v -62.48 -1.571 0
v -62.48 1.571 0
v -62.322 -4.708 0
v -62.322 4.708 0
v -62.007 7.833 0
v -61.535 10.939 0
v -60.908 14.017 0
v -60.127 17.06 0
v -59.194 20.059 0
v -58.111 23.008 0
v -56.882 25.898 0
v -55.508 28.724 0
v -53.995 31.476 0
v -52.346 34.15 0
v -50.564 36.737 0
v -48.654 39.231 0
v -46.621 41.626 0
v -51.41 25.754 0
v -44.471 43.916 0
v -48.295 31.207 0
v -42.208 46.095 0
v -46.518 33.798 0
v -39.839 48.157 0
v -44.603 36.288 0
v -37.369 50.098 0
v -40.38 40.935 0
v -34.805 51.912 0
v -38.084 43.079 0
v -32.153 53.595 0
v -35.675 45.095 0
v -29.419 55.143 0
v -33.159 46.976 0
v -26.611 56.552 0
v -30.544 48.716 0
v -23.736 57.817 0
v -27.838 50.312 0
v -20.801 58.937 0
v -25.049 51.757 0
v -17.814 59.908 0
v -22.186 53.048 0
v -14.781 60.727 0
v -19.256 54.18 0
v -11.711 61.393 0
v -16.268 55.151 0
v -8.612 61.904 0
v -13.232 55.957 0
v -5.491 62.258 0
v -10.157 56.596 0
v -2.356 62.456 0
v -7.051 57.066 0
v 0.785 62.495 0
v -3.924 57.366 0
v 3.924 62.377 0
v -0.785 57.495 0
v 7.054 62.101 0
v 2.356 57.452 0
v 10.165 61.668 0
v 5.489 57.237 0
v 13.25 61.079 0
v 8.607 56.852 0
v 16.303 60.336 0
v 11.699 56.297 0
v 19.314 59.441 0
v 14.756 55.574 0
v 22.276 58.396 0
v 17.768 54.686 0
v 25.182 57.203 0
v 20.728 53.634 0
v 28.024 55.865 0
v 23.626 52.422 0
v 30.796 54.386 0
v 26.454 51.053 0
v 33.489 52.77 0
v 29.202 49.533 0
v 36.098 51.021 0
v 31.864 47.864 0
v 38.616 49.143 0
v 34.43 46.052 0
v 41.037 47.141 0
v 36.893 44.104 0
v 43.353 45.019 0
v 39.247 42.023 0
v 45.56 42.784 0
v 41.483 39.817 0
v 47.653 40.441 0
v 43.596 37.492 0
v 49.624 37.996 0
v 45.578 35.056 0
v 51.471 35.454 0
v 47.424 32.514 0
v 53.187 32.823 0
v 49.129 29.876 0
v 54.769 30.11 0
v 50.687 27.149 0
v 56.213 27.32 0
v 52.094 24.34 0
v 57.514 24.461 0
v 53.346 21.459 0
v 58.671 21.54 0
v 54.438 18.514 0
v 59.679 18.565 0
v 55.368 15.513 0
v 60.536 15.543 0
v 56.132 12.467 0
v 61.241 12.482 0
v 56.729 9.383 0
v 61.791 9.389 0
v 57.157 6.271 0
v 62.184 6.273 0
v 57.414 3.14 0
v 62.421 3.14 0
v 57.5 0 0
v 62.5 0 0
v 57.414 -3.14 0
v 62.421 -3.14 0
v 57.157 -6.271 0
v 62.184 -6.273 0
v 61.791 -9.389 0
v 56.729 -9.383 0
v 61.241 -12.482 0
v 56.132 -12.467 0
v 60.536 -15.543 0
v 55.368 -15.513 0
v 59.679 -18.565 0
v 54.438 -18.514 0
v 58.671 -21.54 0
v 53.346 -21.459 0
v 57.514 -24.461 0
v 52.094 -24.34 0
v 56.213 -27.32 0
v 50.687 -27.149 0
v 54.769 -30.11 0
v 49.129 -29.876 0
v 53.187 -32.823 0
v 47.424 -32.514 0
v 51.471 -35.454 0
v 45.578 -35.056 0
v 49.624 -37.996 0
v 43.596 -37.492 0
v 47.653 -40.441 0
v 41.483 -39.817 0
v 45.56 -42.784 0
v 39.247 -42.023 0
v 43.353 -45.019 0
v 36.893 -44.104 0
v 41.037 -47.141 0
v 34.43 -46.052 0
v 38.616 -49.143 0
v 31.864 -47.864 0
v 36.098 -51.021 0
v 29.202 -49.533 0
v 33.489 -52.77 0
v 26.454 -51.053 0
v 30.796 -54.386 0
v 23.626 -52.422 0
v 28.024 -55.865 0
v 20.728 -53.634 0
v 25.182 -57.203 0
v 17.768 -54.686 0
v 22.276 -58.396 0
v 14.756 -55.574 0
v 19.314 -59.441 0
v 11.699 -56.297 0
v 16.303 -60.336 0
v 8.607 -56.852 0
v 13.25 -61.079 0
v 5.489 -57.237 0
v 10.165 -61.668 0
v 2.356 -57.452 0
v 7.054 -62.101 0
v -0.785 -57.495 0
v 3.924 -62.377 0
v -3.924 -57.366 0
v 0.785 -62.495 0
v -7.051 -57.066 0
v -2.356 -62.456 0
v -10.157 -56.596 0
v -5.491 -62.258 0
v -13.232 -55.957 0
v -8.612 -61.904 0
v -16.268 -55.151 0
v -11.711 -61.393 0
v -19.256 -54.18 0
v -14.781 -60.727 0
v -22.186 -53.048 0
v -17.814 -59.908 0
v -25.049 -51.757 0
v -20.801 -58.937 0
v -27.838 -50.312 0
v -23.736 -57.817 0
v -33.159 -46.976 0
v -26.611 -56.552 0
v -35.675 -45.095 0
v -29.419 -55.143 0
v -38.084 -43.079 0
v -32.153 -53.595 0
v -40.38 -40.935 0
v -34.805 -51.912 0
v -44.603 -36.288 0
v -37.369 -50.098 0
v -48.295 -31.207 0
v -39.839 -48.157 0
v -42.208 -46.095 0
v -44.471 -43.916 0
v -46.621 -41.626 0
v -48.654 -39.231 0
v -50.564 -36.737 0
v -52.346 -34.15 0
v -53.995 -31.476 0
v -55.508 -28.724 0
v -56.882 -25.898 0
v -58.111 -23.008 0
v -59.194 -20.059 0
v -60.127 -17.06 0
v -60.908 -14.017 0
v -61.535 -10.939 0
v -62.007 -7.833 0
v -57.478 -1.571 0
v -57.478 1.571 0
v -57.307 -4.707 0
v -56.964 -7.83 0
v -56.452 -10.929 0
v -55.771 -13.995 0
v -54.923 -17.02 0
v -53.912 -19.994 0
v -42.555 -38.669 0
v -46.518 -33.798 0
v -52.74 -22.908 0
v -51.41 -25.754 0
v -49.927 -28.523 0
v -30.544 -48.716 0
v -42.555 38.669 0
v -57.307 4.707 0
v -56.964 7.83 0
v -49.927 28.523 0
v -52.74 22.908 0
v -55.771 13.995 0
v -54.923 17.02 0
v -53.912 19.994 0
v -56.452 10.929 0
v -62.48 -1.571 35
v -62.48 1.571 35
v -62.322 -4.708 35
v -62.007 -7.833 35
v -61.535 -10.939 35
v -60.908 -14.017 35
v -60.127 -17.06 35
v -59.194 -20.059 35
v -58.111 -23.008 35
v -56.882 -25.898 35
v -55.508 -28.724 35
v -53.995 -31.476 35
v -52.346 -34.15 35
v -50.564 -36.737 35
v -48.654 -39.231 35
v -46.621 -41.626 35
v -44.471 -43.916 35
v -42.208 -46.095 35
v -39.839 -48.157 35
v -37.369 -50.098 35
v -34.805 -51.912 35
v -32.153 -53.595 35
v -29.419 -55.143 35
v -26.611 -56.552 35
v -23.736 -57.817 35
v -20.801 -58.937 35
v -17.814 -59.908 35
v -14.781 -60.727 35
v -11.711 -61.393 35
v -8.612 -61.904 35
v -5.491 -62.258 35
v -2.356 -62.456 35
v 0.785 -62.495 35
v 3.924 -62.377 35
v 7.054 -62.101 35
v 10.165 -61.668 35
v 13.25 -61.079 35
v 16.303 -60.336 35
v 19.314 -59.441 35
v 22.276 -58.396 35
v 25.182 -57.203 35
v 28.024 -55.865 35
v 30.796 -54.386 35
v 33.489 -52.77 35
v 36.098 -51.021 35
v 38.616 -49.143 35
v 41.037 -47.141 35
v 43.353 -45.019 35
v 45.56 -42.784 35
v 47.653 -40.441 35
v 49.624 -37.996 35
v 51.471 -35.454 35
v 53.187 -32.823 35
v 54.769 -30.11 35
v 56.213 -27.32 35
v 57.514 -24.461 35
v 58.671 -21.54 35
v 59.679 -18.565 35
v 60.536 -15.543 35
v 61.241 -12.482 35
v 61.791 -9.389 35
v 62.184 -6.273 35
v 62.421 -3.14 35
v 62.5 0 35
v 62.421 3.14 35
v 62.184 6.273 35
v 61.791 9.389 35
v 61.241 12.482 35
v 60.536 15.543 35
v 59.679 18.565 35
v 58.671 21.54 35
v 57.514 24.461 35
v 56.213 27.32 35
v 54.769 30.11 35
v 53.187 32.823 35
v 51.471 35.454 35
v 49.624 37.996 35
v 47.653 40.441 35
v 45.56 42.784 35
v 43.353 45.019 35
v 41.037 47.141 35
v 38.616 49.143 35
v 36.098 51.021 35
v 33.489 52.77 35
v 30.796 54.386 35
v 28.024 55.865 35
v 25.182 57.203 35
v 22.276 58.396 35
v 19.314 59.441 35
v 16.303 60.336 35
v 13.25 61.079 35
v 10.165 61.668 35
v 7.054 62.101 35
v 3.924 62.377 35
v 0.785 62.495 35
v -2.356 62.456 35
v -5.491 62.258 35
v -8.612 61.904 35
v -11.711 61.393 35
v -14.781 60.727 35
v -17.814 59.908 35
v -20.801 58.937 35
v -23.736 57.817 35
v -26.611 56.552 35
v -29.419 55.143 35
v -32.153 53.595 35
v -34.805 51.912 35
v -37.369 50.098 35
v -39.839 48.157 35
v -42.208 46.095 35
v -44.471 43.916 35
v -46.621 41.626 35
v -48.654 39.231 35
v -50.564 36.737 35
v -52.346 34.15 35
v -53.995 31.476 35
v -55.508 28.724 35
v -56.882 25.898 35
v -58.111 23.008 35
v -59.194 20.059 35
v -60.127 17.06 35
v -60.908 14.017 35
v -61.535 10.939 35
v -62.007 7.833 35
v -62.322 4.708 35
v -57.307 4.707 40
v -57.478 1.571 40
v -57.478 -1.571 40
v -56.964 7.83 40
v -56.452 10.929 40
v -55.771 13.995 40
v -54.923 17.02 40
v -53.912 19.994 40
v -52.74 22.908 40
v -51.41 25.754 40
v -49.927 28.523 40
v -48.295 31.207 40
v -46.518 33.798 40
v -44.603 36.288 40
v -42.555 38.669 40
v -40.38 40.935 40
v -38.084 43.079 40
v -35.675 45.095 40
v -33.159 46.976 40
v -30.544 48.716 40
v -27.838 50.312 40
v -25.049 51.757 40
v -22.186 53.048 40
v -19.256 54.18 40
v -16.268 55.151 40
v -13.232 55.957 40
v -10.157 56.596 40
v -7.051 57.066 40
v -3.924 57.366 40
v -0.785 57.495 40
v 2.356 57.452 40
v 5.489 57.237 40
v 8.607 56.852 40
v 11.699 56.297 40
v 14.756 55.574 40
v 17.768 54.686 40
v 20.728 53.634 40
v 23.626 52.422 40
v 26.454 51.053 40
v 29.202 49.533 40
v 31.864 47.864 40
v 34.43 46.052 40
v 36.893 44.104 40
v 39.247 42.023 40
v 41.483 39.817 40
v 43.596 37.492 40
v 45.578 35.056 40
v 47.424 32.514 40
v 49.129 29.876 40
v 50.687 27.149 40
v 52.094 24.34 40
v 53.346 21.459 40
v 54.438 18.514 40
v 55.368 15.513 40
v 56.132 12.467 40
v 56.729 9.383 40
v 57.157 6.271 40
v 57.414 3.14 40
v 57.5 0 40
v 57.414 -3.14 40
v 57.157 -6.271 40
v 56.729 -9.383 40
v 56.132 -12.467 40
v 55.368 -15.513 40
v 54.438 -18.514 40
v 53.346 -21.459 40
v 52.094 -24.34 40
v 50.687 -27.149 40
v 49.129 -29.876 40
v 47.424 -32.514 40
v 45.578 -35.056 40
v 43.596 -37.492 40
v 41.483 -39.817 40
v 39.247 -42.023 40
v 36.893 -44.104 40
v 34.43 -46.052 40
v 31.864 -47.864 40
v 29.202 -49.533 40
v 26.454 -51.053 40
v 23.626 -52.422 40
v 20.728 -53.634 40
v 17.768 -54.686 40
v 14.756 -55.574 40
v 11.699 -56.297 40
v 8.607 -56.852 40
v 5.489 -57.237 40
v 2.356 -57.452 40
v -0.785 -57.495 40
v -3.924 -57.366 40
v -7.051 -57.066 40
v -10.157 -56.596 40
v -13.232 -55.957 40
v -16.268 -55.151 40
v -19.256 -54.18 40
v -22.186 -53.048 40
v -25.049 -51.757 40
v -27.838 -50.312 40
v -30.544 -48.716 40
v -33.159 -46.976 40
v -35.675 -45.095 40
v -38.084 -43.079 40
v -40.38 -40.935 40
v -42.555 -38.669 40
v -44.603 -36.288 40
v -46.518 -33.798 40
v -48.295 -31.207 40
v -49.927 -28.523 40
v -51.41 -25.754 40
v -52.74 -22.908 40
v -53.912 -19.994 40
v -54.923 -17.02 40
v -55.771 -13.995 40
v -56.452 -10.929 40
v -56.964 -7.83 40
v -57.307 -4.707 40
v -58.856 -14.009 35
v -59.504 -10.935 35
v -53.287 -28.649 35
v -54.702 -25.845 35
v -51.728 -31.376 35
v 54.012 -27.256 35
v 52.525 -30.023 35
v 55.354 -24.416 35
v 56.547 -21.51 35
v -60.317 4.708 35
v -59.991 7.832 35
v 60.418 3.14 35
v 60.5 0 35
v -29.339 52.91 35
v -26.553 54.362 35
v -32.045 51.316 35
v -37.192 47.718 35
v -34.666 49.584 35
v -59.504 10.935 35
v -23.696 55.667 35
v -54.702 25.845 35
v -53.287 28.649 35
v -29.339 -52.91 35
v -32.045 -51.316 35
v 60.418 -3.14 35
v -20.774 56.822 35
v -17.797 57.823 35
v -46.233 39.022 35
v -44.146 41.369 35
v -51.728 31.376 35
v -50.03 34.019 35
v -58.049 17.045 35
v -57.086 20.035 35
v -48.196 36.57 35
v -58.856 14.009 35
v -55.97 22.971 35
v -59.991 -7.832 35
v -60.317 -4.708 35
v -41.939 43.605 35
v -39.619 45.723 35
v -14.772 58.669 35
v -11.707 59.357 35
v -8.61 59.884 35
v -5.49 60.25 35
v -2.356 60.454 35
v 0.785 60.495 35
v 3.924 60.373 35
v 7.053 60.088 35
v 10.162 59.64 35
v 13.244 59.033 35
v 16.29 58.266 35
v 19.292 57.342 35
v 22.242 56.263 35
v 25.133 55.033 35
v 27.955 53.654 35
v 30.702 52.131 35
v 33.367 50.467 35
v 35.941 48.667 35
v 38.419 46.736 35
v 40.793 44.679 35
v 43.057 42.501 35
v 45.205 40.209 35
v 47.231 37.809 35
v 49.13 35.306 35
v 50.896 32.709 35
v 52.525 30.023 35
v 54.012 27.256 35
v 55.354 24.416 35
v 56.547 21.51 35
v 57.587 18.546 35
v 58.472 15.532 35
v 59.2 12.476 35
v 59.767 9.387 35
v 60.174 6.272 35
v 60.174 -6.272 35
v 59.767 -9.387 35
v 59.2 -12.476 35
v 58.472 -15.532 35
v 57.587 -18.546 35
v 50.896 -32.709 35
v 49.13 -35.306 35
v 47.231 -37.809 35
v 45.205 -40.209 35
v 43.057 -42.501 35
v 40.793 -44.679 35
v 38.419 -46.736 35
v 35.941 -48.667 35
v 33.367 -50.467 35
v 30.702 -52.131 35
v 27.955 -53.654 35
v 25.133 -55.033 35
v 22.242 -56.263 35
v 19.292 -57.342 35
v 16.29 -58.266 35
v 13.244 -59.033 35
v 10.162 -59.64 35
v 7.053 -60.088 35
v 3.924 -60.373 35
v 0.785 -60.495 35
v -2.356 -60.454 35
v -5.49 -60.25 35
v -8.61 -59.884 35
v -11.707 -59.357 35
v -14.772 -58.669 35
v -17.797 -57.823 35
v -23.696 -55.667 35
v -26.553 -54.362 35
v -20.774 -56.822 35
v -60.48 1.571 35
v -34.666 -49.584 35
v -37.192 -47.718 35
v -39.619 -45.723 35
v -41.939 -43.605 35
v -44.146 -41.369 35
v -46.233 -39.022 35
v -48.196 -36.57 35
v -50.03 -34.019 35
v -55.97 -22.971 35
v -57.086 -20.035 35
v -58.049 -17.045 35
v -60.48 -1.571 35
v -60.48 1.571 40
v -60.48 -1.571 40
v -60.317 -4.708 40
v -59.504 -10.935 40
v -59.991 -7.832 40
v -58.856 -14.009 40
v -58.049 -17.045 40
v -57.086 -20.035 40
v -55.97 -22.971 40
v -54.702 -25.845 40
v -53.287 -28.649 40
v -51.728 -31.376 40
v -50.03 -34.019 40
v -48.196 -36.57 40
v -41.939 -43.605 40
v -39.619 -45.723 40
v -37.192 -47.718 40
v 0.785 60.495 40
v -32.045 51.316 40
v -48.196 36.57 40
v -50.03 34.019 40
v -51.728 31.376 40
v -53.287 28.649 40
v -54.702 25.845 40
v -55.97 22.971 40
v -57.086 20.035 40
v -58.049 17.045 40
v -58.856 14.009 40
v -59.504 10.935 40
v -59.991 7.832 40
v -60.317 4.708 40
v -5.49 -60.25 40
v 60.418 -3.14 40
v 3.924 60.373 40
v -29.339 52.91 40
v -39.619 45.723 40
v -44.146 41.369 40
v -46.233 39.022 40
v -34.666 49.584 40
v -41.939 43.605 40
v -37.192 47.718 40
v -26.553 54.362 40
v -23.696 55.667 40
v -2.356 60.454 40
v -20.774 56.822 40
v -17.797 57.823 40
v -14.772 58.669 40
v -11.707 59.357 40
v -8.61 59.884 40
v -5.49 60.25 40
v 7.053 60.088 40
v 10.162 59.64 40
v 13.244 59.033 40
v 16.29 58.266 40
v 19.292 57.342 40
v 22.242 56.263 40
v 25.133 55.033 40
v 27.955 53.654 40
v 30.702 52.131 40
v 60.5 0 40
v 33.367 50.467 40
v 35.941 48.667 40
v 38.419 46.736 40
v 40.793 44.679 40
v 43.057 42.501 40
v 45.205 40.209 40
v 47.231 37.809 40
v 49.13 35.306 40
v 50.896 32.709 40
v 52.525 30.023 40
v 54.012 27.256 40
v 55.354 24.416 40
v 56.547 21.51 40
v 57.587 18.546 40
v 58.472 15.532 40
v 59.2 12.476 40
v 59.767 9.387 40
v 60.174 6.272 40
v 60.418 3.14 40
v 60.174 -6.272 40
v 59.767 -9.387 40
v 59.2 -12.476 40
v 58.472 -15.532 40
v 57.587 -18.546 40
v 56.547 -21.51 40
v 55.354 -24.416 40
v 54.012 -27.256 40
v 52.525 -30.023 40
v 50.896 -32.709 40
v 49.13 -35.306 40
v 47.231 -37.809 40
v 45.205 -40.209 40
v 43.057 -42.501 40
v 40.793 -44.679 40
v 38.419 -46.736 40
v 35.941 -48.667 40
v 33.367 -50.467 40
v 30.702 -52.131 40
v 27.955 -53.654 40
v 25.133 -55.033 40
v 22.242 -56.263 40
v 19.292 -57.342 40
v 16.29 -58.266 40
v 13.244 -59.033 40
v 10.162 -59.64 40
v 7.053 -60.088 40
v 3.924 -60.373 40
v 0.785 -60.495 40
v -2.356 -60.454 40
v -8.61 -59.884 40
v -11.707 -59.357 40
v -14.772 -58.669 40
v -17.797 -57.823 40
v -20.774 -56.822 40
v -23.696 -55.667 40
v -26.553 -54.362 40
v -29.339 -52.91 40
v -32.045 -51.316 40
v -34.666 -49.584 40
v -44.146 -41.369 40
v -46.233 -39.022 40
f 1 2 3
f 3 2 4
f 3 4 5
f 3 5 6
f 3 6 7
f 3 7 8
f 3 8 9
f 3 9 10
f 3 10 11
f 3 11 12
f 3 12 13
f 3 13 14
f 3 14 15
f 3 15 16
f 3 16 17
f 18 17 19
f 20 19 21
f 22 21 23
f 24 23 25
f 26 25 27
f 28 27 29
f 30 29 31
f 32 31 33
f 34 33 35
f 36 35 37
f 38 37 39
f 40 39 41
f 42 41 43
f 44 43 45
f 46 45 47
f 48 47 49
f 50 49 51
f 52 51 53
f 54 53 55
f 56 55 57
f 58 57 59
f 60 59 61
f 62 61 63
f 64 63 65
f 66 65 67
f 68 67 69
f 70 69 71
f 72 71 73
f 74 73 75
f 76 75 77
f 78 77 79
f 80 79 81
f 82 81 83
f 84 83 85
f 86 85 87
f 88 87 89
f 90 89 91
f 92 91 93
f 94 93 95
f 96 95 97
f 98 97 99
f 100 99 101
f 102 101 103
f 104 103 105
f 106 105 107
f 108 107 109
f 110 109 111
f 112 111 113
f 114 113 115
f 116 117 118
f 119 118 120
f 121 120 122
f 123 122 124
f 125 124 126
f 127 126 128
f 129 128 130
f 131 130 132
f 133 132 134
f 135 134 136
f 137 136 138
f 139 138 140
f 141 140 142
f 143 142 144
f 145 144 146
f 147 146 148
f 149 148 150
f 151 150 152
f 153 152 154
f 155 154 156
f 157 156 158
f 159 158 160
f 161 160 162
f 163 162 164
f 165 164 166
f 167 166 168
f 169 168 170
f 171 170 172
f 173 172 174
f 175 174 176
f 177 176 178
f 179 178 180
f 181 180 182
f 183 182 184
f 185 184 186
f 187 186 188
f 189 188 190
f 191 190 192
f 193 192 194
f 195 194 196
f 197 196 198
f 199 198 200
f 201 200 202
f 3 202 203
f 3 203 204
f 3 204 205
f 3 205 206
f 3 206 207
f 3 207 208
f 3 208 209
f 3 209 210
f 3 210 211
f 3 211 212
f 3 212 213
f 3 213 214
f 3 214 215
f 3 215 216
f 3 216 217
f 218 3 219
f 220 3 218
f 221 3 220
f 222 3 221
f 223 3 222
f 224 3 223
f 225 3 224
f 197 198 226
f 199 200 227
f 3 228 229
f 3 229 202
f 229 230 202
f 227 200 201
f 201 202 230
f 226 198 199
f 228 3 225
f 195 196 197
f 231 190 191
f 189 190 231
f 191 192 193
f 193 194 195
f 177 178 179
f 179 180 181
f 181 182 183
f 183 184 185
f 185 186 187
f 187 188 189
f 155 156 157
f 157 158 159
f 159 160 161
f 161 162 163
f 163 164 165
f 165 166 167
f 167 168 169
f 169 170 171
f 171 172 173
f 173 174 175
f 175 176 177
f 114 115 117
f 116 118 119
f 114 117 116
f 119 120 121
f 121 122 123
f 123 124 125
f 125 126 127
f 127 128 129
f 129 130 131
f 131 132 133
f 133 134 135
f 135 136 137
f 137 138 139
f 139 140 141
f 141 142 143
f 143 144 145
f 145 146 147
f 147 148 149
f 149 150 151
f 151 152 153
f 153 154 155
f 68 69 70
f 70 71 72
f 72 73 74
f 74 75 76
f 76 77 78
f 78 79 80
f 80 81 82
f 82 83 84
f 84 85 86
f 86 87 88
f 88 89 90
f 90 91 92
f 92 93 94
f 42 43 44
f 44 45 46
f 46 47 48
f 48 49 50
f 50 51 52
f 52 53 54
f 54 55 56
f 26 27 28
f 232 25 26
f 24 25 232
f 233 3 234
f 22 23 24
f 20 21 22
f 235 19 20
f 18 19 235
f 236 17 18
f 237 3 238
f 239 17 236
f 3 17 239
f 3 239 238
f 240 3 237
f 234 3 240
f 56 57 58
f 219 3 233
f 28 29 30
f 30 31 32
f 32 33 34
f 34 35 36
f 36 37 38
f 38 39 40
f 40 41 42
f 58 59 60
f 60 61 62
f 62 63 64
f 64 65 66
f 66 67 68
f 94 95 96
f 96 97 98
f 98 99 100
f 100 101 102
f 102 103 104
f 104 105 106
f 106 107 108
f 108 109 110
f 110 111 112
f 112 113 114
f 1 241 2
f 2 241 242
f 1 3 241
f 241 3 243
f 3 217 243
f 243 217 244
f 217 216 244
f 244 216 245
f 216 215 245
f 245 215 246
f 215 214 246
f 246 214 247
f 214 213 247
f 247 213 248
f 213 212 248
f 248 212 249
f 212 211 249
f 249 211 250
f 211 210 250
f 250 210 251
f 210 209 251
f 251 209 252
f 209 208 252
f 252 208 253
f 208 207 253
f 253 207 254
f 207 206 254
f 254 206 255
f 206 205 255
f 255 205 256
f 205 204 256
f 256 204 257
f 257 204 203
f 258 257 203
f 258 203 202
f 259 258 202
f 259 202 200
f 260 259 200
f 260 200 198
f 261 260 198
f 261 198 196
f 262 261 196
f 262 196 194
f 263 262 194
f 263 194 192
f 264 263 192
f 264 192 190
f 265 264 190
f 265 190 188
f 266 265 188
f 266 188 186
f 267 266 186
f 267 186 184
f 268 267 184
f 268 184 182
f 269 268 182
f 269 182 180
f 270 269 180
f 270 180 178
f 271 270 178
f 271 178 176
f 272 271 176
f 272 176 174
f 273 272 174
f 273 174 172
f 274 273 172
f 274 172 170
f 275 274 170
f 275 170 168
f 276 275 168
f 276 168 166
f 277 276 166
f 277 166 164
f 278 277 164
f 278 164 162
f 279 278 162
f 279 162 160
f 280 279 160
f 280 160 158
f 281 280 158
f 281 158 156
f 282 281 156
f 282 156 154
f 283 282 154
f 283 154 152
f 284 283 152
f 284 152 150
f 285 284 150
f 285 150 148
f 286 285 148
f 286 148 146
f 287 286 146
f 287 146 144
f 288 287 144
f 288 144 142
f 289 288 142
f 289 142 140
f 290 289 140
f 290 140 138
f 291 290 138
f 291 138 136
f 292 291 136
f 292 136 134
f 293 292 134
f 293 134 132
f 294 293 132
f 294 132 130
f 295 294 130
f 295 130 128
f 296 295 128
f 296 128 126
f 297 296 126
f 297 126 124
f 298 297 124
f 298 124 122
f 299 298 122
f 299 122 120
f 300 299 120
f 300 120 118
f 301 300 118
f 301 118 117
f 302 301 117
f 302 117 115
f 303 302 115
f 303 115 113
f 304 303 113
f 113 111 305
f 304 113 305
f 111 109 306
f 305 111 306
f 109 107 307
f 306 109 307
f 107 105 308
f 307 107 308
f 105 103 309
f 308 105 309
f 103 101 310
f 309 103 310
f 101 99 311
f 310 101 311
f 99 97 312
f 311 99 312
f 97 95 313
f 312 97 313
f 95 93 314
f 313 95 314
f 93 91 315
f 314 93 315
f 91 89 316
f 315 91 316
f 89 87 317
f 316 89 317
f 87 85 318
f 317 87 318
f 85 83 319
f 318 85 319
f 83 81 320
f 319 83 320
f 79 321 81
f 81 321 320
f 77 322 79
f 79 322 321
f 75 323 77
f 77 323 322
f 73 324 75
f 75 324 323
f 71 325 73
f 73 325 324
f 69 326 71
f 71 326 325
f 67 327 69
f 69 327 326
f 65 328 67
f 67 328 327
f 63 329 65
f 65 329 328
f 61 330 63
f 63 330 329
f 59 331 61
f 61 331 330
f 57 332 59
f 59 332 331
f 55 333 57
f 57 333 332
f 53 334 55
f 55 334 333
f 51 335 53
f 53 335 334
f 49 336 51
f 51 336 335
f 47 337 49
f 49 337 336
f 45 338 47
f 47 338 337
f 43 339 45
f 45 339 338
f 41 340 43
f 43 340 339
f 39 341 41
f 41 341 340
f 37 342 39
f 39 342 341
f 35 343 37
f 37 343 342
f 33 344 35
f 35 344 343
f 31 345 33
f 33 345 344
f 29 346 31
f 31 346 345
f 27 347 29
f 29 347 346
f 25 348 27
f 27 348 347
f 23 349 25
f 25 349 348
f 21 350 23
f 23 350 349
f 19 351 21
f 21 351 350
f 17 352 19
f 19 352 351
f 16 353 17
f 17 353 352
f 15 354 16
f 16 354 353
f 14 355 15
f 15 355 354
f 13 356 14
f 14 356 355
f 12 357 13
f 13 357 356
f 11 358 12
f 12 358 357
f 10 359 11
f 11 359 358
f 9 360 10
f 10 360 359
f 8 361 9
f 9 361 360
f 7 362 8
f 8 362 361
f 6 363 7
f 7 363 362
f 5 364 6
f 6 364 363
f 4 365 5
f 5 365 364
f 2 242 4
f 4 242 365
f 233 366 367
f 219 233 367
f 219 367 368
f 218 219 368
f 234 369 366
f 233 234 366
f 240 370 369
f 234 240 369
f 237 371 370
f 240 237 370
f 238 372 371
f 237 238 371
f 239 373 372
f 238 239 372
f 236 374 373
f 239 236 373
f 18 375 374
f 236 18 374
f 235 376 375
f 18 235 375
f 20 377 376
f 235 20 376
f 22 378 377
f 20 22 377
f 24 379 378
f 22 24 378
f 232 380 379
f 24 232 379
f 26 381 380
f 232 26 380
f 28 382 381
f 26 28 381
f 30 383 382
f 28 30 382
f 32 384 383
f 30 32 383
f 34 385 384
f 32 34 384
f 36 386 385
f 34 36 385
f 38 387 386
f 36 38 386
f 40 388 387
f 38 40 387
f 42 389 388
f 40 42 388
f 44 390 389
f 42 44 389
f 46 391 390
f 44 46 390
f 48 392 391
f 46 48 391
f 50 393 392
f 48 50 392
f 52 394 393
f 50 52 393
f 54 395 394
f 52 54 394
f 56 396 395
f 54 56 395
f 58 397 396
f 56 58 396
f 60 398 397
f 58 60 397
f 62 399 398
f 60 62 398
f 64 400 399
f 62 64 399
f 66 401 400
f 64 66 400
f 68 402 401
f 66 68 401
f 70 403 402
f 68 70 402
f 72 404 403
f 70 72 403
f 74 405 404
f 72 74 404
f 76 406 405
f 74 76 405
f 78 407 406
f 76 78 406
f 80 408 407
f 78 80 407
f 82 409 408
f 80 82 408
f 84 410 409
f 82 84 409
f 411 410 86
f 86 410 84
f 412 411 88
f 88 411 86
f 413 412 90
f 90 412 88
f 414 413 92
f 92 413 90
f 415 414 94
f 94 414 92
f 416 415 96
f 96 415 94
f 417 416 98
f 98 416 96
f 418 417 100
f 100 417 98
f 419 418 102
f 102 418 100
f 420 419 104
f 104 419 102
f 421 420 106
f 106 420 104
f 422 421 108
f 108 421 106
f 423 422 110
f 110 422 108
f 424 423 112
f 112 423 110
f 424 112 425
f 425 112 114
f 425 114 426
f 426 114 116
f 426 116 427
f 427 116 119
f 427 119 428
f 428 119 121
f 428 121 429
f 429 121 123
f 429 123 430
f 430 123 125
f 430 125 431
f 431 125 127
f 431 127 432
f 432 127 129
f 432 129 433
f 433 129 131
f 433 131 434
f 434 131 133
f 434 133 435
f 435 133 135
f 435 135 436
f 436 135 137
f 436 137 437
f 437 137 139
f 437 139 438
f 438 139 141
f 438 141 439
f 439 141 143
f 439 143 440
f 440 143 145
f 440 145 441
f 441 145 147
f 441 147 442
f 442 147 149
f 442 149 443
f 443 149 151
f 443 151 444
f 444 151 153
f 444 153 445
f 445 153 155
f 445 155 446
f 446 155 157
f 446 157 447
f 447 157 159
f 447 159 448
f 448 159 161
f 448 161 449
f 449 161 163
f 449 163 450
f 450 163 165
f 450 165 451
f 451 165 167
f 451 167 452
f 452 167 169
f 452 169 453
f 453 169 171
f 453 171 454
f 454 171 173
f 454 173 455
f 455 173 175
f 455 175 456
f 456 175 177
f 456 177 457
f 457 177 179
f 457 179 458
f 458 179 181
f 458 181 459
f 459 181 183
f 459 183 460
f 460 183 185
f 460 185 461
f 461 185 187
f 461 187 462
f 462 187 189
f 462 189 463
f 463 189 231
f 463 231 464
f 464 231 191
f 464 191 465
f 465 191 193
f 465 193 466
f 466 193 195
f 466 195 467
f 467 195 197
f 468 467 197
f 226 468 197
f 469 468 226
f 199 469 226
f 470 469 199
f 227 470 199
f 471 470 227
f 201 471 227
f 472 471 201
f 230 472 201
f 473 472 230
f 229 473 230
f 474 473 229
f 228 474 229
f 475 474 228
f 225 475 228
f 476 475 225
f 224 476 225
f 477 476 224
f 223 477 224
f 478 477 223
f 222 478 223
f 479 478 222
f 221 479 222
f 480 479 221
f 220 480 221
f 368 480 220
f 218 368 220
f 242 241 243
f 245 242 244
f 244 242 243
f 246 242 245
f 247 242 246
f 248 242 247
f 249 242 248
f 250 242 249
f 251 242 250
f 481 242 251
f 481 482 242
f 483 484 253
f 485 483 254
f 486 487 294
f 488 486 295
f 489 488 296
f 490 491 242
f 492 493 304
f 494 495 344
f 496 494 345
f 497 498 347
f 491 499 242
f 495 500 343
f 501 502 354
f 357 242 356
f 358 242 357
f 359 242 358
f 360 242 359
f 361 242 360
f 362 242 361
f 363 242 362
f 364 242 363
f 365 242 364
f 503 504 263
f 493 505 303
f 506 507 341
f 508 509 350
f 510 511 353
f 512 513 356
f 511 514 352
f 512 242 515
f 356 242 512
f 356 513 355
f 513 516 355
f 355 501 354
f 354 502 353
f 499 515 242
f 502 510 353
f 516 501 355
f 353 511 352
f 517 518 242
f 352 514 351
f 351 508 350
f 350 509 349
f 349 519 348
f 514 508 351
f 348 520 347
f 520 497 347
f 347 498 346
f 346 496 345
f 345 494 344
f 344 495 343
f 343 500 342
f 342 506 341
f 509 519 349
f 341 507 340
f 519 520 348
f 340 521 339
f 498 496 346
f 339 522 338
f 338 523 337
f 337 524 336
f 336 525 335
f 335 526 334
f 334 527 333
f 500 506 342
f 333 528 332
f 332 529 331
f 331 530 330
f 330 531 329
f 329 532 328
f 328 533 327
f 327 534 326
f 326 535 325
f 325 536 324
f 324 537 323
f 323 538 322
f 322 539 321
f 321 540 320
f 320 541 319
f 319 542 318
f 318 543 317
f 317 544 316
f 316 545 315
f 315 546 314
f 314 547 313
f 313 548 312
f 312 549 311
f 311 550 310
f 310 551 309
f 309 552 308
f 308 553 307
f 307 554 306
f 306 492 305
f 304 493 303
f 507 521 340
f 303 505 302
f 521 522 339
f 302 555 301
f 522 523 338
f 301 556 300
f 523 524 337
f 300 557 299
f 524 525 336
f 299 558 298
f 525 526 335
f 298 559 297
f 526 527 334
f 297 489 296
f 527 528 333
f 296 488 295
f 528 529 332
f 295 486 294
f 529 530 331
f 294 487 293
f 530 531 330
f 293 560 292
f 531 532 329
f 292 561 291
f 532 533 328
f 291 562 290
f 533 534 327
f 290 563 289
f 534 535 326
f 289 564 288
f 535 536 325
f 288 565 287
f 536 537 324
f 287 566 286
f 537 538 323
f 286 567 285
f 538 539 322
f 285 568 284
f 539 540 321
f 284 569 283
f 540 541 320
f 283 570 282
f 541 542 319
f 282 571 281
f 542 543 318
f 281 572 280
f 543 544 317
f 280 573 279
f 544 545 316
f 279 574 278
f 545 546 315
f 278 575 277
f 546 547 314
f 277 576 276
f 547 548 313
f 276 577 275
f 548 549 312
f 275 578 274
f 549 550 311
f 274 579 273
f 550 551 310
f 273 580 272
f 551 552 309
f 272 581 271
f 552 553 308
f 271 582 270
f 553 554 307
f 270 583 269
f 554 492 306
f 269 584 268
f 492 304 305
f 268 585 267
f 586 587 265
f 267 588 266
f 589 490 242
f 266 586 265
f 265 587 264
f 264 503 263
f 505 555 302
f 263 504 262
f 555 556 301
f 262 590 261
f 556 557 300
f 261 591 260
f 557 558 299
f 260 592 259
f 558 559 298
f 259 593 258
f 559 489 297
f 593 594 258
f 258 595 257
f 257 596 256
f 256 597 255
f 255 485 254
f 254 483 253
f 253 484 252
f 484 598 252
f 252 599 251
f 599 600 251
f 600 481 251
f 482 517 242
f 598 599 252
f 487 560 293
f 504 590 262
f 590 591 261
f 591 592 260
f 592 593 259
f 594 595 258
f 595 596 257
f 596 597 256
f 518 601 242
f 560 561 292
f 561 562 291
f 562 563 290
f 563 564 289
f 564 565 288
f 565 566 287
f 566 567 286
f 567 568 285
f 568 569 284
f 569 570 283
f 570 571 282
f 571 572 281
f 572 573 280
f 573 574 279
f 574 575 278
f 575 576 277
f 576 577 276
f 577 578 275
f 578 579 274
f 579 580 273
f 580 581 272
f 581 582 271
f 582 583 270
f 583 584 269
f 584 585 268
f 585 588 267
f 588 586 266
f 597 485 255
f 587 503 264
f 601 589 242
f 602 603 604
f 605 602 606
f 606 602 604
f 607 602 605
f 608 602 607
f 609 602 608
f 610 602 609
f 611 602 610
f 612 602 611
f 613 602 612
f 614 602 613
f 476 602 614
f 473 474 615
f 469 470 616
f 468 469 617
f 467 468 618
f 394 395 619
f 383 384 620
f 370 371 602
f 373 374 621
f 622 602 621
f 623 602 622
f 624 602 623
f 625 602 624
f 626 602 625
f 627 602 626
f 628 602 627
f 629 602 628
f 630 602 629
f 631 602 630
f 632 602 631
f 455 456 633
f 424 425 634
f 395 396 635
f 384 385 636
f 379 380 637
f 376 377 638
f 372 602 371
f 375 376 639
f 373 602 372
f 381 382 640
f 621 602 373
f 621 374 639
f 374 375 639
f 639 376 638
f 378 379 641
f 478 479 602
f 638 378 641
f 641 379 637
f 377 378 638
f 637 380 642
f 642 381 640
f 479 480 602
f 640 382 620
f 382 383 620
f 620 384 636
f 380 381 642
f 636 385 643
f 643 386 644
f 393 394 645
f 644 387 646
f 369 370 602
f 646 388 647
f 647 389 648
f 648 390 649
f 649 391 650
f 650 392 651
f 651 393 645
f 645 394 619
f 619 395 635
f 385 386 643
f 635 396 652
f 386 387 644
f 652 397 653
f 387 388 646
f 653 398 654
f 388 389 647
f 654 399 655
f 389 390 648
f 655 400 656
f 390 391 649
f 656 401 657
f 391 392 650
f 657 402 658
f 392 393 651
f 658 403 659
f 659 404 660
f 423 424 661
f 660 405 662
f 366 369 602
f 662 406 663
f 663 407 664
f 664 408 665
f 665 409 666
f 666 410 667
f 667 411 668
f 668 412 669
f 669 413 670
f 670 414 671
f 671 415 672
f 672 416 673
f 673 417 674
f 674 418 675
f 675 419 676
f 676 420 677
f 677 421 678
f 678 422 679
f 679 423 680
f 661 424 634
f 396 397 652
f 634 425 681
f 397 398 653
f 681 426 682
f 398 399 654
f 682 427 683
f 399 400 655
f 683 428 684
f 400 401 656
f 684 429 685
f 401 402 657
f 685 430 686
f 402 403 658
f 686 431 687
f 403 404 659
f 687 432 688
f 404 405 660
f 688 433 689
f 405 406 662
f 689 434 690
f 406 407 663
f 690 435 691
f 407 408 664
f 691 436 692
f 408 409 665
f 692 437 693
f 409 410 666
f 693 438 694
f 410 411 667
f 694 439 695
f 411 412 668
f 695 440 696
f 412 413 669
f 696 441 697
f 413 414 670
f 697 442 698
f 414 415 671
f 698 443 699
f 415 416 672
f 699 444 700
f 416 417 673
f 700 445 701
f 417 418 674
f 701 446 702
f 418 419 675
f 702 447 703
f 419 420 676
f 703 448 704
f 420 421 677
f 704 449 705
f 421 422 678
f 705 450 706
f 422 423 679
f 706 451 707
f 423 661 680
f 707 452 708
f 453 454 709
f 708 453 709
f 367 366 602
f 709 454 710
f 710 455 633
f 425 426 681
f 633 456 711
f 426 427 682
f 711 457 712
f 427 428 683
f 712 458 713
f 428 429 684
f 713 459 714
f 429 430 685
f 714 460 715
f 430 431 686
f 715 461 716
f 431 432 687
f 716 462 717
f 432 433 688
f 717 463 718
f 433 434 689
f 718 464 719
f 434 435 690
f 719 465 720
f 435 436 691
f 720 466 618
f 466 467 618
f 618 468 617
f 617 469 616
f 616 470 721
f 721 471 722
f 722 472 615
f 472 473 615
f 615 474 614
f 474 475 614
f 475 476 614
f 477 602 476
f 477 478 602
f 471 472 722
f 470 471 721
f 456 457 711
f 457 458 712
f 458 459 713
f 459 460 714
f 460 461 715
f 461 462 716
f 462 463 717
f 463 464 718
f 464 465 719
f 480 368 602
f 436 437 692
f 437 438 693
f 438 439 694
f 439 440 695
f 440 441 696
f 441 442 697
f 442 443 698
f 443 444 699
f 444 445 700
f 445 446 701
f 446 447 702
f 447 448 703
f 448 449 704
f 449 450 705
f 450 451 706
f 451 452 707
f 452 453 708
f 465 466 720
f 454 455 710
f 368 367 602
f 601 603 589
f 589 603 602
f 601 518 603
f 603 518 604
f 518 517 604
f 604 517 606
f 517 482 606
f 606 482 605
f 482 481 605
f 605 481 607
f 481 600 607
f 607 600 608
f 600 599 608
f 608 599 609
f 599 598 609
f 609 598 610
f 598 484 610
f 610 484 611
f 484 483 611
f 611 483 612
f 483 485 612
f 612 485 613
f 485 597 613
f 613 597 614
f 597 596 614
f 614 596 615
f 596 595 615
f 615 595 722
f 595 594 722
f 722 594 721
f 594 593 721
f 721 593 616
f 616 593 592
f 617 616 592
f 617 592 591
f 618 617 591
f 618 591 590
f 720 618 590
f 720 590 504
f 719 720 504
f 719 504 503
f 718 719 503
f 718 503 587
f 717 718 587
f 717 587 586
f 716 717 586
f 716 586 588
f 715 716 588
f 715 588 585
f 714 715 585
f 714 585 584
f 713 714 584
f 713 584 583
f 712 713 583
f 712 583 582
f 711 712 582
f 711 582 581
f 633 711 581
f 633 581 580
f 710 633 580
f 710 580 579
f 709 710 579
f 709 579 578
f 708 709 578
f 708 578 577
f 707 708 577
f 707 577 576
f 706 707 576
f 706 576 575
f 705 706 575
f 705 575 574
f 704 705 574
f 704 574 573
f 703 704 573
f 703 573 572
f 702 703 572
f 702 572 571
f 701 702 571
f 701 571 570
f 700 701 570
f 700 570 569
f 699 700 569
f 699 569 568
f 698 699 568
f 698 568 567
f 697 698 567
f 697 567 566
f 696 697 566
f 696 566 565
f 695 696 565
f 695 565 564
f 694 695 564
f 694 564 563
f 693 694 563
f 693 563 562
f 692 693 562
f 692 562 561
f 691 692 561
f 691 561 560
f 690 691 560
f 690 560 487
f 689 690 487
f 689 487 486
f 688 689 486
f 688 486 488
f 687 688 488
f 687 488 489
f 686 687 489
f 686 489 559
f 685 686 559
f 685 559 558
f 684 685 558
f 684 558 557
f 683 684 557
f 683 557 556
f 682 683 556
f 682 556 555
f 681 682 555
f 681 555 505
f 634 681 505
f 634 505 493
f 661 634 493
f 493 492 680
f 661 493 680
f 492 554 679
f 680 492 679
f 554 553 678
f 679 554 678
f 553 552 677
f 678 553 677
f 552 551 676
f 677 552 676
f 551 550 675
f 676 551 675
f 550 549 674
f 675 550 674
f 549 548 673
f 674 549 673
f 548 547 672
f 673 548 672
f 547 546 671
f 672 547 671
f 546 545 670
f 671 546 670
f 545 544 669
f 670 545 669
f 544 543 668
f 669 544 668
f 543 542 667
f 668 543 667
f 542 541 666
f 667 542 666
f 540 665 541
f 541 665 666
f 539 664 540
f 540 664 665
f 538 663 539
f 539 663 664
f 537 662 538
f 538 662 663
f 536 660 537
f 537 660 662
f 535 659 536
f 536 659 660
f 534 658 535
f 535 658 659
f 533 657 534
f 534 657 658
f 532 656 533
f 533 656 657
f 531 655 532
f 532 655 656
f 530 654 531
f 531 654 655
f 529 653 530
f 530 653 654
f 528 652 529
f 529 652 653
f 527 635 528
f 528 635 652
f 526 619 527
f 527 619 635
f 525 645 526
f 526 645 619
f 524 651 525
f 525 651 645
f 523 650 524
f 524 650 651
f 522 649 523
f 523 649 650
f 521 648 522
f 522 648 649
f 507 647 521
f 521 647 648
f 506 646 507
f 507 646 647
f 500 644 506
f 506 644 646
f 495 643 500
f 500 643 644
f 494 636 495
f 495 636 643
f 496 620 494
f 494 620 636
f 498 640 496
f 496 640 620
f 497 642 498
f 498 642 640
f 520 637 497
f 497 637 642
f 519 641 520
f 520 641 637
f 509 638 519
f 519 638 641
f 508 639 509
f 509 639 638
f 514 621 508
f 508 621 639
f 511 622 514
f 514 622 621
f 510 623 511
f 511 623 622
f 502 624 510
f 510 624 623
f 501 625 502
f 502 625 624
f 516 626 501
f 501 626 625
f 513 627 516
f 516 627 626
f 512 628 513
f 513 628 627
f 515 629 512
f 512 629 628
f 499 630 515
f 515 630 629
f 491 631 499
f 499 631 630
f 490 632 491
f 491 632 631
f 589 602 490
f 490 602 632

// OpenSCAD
// parameters
overall_height = 35;
outside_diameter = 125;
outside_wall_thickness = 5;
lip_height = 5;
lip_thickness = 2;

// let the computer do the math
outside_radius = outside_diameter / 2;
inside_radius = outside_radius - outside_wall_thickness;
lip_radius = outside_radius - lip_thickness;

difference(){
	
	// outside
	union(){
		cylinder(r=outside_radius, h=overall_height, $fn=outside_radius * 2);

		// lip
		translate([0,0,overall_height]){
			cylinder(r=lip_radius,h=5, $fn=lip_radius * 2);
		}
	}

	// inside
	translate([0,0,-1]){
		#cylinder(r=inside_radius, h=overall_height + lip_height + 2, $fn=inside_radius * 2);
	}
}
